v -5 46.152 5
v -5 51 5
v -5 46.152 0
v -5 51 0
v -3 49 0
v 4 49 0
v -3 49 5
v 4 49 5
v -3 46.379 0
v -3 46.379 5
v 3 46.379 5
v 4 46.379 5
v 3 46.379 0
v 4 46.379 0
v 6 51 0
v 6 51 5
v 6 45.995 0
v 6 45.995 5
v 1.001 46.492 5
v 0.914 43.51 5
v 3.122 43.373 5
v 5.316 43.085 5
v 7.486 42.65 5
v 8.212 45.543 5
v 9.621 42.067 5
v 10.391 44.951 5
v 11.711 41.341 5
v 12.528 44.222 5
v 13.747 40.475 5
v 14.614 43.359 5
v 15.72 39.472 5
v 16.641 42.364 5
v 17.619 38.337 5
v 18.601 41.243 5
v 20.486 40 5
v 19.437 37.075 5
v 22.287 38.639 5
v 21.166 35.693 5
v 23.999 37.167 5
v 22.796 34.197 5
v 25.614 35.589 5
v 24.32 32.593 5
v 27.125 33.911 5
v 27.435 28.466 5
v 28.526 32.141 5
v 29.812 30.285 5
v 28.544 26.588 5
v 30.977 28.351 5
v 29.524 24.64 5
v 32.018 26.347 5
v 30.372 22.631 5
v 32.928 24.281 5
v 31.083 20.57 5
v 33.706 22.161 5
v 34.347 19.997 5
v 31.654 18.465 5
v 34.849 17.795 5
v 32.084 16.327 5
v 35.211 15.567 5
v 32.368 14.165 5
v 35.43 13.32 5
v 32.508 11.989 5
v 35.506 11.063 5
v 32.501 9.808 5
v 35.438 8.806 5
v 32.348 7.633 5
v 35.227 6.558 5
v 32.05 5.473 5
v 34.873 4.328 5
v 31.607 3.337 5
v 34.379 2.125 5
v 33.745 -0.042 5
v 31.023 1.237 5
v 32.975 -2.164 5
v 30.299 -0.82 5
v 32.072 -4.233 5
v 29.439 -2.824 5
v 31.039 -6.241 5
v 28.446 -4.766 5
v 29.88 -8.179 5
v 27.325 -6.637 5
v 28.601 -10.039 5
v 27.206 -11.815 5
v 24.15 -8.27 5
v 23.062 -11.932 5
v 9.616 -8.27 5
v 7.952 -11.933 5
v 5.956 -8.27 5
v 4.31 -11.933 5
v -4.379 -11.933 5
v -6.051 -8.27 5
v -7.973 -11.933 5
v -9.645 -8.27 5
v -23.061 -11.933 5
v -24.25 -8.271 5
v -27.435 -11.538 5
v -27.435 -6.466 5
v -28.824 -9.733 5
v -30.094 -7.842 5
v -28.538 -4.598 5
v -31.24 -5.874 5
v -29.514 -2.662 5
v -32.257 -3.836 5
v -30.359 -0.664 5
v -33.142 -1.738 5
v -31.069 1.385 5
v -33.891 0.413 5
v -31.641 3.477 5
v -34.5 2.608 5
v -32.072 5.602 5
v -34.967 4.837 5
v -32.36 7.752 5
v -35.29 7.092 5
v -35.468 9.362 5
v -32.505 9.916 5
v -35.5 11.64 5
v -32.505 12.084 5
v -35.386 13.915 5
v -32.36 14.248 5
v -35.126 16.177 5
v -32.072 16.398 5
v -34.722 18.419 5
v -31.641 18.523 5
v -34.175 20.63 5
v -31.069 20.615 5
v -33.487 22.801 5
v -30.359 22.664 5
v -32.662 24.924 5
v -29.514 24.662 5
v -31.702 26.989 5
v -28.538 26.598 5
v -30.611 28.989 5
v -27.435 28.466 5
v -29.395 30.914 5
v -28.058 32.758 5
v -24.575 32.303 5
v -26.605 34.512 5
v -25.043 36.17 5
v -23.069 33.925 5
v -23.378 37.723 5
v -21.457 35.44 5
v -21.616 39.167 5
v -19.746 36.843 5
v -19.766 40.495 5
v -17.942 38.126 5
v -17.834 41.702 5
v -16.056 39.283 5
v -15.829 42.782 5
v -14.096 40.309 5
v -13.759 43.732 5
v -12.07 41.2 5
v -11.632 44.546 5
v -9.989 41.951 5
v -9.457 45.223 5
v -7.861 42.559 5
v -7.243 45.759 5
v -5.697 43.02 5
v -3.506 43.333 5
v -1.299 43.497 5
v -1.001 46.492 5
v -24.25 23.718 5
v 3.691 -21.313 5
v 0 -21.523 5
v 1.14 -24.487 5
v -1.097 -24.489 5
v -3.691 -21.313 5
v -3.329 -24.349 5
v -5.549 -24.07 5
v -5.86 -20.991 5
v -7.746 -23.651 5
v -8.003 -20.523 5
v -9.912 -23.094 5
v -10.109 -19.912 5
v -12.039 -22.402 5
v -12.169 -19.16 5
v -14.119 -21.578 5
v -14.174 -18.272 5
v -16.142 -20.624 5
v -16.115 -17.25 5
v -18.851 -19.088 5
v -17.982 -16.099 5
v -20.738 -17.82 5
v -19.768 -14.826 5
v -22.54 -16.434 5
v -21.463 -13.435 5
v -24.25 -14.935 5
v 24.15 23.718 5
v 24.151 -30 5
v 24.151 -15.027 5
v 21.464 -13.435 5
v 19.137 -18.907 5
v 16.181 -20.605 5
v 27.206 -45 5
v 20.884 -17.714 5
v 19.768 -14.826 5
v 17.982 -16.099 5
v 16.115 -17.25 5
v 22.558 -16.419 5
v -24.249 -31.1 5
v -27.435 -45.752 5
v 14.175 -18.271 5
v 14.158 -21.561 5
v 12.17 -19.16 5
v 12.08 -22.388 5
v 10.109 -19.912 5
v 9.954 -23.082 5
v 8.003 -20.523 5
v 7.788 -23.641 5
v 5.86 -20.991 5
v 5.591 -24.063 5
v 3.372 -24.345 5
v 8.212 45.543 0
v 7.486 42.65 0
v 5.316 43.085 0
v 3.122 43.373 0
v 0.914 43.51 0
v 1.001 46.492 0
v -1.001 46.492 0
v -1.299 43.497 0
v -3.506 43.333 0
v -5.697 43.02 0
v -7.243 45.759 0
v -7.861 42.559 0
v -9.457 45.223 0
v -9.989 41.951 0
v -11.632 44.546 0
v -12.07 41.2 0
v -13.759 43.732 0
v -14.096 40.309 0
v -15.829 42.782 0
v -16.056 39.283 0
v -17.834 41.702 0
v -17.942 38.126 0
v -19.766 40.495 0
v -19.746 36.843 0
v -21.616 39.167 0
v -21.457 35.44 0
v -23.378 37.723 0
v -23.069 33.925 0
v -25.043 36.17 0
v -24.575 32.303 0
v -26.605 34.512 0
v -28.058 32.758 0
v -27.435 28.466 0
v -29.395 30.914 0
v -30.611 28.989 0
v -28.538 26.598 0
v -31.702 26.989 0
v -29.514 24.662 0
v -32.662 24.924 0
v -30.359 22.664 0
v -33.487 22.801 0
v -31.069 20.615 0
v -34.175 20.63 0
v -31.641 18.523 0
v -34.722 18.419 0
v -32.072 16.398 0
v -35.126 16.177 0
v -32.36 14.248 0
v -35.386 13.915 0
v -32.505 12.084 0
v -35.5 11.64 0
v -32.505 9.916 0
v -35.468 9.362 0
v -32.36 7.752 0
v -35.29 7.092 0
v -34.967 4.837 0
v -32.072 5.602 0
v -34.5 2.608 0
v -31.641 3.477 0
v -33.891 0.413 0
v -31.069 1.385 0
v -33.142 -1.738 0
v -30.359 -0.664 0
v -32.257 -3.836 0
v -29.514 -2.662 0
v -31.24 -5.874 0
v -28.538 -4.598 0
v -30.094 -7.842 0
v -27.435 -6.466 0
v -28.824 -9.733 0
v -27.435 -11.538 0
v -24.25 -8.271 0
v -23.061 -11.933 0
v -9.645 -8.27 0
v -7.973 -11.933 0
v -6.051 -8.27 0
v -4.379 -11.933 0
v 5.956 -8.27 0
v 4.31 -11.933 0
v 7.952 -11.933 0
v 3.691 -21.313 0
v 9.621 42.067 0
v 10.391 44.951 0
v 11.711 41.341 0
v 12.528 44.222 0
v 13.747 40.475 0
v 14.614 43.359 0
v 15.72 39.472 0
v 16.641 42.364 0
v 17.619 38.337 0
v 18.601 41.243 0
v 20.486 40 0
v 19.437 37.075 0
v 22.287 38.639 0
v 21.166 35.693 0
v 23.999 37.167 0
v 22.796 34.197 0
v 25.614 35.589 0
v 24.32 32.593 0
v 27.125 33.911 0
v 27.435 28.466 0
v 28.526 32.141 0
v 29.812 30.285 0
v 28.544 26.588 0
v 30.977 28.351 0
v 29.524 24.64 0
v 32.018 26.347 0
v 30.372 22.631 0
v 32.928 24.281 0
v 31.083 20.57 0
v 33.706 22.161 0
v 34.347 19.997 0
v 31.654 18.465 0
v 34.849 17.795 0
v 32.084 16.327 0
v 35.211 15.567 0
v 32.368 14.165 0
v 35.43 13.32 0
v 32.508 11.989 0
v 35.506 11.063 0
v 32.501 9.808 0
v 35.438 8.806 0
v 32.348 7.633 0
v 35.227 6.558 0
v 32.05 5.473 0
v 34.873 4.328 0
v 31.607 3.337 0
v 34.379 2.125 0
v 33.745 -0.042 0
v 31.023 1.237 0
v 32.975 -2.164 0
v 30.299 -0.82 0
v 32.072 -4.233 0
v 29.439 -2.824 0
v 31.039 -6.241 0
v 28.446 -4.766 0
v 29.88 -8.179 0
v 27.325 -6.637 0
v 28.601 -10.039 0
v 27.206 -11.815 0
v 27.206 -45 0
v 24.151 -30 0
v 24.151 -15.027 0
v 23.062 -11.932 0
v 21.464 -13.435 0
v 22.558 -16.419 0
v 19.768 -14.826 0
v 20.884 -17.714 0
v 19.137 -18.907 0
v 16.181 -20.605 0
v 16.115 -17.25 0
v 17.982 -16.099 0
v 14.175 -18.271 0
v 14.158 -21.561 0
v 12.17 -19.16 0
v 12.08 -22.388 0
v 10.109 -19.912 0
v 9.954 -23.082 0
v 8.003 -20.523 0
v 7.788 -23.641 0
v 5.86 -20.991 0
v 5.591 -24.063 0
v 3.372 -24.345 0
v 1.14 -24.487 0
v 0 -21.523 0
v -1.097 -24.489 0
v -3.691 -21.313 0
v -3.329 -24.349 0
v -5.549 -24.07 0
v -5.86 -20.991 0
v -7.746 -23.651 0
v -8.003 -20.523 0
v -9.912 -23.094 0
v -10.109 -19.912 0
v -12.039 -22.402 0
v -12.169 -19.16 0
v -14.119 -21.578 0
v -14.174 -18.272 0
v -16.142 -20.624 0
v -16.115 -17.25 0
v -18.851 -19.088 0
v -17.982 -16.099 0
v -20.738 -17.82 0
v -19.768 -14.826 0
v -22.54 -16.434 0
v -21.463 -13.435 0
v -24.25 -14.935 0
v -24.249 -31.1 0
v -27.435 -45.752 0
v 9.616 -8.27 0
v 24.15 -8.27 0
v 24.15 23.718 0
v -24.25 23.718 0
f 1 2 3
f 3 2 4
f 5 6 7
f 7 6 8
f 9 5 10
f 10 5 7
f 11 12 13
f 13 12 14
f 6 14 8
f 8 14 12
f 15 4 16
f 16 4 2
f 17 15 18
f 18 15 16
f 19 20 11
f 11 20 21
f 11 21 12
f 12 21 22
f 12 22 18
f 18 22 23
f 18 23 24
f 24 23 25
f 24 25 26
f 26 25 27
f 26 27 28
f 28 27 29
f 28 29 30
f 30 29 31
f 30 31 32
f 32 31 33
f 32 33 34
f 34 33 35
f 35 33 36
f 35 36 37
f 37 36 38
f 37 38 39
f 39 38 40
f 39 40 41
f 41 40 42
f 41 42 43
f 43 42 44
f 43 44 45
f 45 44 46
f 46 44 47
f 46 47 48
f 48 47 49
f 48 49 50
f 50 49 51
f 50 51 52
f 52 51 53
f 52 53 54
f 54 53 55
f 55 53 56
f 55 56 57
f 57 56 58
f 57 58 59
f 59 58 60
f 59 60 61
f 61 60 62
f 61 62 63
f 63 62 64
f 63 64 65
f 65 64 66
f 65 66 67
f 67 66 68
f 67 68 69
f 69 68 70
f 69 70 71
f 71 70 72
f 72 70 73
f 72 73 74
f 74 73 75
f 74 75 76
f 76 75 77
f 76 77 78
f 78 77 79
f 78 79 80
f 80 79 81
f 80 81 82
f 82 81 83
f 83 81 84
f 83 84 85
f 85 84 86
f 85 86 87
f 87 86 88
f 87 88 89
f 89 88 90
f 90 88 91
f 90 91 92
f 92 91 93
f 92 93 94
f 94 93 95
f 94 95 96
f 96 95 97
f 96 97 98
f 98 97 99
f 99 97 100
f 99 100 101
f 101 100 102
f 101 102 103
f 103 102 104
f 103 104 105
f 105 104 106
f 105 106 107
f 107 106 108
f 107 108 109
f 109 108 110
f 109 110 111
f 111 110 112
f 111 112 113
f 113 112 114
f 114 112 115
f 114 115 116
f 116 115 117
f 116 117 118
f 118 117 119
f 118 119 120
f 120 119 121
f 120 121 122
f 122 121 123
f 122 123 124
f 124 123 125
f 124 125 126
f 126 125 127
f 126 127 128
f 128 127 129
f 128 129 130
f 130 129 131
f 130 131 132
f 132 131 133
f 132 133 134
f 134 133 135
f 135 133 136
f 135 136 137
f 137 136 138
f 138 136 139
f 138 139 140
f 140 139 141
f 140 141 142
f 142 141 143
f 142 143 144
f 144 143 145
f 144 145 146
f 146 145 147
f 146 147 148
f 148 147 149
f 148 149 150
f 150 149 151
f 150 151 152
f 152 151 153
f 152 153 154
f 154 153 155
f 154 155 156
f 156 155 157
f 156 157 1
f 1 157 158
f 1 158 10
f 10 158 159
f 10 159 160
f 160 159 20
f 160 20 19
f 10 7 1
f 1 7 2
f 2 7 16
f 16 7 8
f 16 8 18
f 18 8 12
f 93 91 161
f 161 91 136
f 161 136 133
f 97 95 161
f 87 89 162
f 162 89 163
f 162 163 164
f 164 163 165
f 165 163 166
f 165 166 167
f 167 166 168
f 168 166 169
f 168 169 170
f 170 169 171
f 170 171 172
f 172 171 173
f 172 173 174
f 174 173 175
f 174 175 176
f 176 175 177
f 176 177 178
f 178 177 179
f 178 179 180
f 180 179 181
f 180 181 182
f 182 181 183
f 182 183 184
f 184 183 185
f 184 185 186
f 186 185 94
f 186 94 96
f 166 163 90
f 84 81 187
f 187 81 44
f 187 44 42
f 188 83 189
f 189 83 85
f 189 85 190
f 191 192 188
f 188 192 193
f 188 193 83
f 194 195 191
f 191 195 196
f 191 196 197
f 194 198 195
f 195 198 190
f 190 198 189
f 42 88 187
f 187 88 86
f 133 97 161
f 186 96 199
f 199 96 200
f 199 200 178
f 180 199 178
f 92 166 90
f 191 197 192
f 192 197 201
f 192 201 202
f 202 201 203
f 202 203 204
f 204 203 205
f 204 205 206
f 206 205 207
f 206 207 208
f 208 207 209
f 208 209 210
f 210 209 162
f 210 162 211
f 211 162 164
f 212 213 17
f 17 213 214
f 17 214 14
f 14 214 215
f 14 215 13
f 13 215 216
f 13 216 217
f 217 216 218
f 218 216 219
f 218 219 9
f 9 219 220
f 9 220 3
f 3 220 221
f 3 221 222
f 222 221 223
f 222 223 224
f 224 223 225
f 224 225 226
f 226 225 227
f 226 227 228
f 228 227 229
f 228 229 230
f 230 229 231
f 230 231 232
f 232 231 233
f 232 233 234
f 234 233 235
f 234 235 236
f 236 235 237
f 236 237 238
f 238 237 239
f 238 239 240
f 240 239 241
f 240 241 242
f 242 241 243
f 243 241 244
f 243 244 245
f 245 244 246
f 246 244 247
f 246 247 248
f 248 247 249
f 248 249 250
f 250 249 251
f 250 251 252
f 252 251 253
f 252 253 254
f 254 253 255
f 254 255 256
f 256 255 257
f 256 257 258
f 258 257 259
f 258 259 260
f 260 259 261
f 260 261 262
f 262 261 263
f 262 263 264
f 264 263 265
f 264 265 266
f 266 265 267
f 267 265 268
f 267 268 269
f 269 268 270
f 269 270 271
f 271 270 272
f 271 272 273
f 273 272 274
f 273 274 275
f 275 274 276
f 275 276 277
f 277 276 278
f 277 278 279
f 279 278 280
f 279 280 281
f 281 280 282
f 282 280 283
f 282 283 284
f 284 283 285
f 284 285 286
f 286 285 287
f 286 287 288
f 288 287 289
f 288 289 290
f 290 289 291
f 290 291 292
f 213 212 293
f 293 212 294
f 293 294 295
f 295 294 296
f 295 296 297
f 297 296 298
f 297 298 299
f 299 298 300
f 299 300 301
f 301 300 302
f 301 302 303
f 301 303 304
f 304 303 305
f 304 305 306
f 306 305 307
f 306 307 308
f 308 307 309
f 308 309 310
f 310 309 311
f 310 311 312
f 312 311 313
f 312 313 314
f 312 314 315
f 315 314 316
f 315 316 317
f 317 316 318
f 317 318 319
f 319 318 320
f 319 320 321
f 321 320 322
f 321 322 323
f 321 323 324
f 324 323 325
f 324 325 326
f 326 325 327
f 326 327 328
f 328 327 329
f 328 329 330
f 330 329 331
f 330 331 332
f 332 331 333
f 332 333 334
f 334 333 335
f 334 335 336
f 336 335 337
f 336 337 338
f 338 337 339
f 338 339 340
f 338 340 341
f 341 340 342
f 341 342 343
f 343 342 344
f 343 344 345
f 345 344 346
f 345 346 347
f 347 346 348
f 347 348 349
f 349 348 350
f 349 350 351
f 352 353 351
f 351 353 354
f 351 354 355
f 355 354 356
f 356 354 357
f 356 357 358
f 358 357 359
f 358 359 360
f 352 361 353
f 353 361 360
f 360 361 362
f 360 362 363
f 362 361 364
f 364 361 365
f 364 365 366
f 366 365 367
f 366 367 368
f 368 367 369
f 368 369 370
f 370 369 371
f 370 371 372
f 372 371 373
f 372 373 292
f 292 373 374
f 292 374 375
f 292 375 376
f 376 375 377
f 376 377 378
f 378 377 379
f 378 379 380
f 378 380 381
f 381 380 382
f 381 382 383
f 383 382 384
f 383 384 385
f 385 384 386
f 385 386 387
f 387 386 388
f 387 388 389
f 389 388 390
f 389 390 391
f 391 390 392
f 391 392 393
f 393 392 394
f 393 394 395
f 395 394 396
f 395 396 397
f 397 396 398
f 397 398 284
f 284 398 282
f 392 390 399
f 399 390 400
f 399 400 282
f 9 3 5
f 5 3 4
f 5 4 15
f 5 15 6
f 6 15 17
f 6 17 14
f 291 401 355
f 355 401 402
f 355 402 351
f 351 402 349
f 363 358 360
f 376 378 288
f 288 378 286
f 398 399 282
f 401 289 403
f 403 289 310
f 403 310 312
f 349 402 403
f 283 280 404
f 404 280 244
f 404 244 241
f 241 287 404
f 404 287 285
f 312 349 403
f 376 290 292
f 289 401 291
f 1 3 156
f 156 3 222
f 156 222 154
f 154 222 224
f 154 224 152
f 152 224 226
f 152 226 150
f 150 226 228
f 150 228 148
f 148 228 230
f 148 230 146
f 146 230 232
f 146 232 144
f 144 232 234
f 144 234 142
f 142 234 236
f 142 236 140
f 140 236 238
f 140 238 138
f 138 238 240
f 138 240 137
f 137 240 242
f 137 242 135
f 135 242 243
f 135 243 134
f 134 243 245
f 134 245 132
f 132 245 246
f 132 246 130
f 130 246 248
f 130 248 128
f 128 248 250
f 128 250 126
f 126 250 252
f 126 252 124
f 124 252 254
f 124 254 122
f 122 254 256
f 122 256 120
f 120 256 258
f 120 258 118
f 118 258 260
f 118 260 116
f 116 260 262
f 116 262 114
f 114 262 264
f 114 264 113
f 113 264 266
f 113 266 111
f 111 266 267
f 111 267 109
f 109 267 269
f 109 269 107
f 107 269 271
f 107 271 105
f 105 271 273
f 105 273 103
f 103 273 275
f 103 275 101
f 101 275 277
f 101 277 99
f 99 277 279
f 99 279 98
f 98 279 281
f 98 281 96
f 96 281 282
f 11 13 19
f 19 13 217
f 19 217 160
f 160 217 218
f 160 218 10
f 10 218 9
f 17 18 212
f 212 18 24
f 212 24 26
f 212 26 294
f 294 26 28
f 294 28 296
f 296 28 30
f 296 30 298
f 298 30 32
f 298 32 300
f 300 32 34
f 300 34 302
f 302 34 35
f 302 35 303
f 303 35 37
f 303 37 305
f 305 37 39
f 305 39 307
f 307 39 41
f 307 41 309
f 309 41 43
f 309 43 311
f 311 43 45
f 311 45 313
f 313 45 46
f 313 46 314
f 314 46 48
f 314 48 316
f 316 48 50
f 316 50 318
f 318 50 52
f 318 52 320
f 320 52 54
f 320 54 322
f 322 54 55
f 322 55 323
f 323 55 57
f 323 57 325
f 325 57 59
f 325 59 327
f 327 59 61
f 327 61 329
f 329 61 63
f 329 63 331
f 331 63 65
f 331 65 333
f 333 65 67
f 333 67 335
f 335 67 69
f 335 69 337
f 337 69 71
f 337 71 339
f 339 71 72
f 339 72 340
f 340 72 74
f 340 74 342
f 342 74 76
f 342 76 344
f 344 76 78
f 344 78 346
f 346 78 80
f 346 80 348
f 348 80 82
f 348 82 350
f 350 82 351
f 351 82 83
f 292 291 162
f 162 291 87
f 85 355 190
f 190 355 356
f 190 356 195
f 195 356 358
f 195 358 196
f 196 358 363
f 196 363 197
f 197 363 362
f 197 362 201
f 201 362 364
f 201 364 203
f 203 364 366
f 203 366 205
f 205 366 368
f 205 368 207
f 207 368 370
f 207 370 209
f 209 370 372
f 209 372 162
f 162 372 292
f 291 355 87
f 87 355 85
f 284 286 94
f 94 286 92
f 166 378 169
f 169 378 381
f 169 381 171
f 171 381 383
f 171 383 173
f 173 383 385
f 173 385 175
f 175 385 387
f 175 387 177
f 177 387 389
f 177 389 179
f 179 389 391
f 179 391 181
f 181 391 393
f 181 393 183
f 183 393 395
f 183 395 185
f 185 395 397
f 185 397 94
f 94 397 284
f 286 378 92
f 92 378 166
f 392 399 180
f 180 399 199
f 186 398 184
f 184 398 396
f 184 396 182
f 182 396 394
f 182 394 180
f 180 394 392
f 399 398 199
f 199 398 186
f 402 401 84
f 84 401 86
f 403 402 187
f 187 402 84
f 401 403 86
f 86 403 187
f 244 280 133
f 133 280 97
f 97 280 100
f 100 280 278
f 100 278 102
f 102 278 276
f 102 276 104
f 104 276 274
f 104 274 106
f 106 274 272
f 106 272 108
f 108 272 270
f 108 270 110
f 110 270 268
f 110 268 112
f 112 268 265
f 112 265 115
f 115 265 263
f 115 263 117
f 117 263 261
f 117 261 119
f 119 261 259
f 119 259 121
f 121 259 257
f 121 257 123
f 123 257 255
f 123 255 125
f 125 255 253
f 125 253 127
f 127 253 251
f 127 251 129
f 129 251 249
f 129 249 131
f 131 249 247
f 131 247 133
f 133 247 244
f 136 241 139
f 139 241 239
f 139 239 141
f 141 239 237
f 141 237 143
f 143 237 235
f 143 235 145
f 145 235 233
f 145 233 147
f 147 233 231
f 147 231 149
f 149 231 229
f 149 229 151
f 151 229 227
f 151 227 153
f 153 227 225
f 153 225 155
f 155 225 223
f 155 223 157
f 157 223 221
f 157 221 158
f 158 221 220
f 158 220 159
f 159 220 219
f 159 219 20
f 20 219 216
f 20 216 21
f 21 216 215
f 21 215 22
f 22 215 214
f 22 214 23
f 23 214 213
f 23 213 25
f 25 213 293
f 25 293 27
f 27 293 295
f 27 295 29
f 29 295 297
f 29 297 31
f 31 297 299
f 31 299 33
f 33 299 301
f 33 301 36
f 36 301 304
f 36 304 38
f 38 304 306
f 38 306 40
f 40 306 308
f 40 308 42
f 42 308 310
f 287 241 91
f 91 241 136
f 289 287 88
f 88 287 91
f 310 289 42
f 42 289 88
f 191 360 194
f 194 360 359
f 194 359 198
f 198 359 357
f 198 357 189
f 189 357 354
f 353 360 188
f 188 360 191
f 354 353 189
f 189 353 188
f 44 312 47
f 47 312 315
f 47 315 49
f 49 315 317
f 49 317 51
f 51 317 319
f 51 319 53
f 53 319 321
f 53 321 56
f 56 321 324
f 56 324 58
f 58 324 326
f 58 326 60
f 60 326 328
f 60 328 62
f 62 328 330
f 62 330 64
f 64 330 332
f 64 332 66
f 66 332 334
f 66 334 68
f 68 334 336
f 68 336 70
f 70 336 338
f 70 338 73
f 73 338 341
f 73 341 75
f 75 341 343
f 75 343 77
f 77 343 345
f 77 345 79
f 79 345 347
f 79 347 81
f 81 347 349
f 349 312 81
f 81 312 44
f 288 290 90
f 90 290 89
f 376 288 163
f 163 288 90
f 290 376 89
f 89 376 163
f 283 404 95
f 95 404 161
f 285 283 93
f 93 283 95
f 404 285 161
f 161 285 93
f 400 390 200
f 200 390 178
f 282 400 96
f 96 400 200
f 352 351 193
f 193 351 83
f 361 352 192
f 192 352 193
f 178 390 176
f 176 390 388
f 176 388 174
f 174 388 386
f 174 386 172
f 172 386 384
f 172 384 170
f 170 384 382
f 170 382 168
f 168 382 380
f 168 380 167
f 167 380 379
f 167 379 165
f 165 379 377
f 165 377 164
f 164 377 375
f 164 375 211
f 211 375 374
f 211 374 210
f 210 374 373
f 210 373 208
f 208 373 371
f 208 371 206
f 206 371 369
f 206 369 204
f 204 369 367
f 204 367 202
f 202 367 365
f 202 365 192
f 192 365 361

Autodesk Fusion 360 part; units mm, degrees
sketch "Sketch1" plane through (0, 0, 0) normal (0, 0, 1) x (1, 0, 0)
  circle A0 centre (0, 11) radius 32.5228
  circle A1 centre (0, 11) radius 35.5057
  line L0 (27.2057, -11.8146) -> (27.2057, -45)
  line L1 (27.2057, -45) -> (16.1805, -20.6046)
  line L2 (24.1506, -15.027) -> (24.1506, -30)
  line L3 (24.1506, -30) -> (19.1372, -18.9069)
  line L4 (-16.1421, -20.6242) -> (-27.4351, -45.7523)
  line L5 (-27.4351, -45.7523) -> (-27.4351, 28.4657)
  line L6 (27.4351, 28.4657) -> (27.2057, -45)
  line L7 (24.15, 23.7181) -> (24.1506, -30)
  line L8 (24.15, 23.7181) -> (3.6905, -21.3128)
  line L9 (-3.6905, -21.3128) -> (-24.2501, 23.7181)
  line L10 (-24.2501, 23.7181) -> (-24.2495, -31.0996)
  line L11 (-24.2495, -31.0996) -> (-18.8513, -19.088)
  line L12 (0, -21.5228) -> (24.3204, 32.5929)
  line L13 (0, -21.5228) -> (-24.5749, 32.3028)
  line L14 (23.0617, -11.9324) -> (-23.0612, -11.9329)
  line L15 (26.1993, -8.27) -> (-24.2497, -8.2706)
  line L16 (-5, 44) -> (6, 44)
  line L17 (6, 44) -> (6, 51)
  line L18 (6, 51) -> (-5, 51)
  line L19 (-5, 51) -> (-5, 44)
  line L20 (4, 49) -> (-3, 49)
  line L21 (-3, 49) -> (-3, 46.3788)
  line L22 (-3, 46.3788) -> (4, 46.3788)
  line L23 (4, 46.3788) -> (4, 49)
  dimension "d3" = 7
extrude "Extrude1" add sketch "Sketch1" along normal blind 5 contours A0 A1 L5 L6 L16 L17 L19 | A0 L6 L7 L8 L12 L15 | A0 A1 L6 L7 | A0 L7 L15 | A0 L5 L9 L10 L13 L15 | L8 L12 L14 L15 | L12 L13 L14 L15 | A0 A1 L7 L10 | A0 L7 L8 L14 L15 | A1 L0 L1 L2 L3 L7 | L9 L13 L14 L15 | A0 L8 L12 L14 | A1 L16 L17 L19 L22 | A0 A1 L5 L10 | A0 L9 L13 L14 | A0 L9 L10 L14 L15 | A1 L22 | A1 L4 L5 L10 L11
extrude "Extrude2" add sketch "Sketch1" along normal blind 5 contours A1 L16 L17 L19 L22 | A1 L17 L18 L19 L20 L21 L22 L23
